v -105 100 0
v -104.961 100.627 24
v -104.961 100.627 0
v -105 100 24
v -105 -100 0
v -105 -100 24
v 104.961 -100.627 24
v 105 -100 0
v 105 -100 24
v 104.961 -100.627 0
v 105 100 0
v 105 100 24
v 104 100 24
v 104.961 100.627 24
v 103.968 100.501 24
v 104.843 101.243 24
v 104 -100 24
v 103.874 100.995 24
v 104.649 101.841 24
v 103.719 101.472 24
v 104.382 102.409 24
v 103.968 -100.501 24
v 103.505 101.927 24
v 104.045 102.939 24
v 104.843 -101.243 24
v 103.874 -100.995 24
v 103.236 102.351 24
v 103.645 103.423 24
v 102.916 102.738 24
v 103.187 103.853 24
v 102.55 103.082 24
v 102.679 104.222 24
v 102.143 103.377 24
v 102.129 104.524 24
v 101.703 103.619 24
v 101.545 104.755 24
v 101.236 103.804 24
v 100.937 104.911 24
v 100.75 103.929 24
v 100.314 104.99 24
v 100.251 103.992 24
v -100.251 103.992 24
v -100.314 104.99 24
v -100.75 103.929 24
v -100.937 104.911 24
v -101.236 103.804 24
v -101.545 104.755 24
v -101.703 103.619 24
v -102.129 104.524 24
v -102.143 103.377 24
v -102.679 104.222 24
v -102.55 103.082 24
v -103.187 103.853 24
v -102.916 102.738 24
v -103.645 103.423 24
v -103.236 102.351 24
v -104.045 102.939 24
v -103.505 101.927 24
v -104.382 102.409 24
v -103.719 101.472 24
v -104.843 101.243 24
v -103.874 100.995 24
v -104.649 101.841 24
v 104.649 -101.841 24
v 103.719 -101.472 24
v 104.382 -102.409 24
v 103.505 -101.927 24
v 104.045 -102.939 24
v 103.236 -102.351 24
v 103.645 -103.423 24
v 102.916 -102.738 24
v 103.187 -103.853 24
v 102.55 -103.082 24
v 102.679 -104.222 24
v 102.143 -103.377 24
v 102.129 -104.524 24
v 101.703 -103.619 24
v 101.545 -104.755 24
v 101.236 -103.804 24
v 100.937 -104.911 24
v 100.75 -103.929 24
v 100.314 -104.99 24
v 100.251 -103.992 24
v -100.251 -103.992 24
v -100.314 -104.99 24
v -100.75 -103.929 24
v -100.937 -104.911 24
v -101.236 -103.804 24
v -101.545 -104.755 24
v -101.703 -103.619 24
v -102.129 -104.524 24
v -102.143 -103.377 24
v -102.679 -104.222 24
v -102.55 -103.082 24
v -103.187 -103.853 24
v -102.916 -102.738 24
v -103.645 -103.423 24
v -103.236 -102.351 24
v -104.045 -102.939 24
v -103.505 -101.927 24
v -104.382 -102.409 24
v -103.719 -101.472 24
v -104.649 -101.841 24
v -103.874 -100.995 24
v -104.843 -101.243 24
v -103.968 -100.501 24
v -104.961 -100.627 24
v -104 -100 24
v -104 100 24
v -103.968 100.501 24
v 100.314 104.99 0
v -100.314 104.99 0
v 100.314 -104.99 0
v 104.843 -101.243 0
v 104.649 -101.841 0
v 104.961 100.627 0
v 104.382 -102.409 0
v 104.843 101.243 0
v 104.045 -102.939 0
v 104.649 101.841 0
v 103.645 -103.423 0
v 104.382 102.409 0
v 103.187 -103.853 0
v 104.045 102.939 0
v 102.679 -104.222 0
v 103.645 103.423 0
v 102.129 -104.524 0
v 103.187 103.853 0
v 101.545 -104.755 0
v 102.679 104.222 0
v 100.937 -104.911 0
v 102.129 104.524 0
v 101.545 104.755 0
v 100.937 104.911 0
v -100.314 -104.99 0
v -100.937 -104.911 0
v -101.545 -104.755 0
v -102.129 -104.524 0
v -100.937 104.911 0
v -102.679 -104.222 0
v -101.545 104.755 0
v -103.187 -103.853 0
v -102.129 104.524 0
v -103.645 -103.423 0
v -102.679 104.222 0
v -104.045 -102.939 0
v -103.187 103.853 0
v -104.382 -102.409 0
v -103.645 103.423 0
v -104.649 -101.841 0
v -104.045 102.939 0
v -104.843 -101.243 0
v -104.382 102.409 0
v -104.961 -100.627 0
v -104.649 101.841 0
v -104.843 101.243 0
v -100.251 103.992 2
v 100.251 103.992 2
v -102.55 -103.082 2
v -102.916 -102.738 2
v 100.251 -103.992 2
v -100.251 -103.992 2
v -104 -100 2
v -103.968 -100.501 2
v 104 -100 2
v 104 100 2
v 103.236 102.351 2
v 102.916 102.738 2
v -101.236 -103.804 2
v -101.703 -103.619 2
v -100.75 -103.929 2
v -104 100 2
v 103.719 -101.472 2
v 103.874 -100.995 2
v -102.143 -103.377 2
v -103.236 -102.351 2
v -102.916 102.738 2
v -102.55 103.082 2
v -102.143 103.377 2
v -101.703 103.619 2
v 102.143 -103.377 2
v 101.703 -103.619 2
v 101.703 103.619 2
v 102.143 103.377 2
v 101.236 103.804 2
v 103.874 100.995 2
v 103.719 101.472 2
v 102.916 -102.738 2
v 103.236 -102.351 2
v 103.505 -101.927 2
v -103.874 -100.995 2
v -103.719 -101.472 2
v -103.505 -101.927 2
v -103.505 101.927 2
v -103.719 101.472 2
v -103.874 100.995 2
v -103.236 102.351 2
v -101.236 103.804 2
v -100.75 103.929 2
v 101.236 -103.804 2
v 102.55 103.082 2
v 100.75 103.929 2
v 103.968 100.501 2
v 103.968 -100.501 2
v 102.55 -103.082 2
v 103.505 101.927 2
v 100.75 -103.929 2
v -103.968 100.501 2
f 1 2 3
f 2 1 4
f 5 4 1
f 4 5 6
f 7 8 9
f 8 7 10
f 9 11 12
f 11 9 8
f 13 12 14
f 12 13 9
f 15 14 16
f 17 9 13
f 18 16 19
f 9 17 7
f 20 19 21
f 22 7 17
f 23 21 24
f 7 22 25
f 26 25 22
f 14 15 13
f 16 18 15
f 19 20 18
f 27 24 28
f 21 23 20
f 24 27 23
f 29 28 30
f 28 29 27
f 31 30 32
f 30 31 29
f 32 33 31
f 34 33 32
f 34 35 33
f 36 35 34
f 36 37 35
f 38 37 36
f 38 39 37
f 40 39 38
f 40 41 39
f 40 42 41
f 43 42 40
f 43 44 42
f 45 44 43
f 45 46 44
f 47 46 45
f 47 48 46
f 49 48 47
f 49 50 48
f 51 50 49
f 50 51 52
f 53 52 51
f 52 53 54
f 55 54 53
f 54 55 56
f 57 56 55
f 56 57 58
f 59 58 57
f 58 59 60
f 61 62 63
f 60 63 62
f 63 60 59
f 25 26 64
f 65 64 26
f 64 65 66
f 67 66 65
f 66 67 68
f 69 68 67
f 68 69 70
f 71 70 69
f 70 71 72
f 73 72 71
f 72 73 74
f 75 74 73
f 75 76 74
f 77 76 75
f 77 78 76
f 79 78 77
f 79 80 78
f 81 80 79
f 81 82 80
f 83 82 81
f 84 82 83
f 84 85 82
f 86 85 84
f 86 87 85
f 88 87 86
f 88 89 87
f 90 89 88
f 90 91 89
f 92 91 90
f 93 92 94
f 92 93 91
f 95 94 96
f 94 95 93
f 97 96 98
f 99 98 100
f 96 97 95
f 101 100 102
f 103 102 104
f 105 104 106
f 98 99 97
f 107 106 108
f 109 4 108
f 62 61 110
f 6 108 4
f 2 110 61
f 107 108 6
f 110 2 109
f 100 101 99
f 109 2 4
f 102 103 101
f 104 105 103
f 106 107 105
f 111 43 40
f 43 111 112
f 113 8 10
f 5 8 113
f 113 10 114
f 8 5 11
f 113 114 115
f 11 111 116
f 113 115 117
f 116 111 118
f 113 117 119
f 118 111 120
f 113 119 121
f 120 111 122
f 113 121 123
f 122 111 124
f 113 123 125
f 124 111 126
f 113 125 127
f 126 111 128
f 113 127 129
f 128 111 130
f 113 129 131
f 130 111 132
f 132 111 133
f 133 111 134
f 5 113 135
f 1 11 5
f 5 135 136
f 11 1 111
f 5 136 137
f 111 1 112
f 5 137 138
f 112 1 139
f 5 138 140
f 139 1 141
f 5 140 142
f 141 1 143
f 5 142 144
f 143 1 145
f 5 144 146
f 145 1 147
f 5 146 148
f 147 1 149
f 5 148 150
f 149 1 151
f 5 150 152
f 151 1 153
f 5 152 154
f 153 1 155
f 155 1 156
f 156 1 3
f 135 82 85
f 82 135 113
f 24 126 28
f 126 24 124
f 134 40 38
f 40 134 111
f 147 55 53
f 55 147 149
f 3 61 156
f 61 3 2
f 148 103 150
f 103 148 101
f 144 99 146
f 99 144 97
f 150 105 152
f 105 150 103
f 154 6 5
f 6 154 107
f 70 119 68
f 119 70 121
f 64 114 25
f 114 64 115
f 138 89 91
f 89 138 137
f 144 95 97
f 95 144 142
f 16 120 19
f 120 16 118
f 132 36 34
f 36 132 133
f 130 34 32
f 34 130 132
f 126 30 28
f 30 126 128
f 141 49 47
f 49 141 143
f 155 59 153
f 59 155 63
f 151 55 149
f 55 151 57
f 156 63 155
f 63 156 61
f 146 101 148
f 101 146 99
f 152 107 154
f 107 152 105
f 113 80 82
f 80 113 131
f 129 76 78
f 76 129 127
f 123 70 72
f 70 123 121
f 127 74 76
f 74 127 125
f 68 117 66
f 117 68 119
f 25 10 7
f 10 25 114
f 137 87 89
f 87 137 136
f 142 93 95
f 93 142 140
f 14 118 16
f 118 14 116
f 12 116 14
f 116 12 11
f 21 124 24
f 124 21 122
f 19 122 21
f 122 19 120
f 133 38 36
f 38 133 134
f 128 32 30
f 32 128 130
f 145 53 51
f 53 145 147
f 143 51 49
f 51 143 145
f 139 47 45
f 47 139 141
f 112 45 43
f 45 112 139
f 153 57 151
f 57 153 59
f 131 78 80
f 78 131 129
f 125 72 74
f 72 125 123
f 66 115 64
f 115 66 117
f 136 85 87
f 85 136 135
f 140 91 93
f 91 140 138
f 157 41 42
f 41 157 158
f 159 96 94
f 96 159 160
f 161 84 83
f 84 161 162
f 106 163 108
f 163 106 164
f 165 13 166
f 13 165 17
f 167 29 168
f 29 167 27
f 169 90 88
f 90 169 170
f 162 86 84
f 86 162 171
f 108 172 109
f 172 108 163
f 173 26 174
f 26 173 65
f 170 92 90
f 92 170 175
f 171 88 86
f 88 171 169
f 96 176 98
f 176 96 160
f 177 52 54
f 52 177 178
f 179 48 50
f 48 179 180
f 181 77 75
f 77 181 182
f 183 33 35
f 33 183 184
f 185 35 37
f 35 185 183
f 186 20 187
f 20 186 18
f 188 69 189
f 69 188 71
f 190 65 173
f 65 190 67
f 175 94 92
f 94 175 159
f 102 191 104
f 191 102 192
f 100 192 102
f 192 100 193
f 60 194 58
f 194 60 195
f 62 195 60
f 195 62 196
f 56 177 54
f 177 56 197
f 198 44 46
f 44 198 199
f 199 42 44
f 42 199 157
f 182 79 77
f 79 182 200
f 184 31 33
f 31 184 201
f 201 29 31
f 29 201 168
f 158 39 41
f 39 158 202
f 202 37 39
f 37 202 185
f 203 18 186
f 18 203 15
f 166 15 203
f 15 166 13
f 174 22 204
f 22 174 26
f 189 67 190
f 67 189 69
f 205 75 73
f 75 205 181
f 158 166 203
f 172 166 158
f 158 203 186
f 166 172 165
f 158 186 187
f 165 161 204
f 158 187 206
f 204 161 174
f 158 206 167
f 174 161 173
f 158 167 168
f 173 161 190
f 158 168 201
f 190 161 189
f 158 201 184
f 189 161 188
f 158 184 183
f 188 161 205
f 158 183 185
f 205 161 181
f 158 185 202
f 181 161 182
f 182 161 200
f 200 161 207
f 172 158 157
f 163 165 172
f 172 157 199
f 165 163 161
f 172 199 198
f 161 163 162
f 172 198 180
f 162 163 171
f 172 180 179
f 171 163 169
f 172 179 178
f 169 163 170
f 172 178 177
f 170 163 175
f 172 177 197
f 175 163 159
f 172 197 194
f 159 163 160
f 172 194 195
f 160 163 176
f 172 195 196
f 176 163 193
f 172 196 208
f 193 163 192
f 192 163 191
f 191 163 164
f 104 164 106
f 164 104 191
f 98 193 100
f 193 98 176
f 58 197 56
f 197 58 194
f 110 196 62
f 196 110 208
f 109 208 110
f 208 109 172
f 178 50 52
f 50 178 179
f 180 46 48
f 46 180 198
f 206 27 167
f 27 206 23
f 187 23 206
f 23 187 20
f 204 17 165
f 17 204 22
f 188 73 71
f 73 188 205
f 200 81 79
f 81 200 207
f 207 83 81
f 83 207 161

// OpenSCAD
$fn = 50;


difference() {
	union() {
		hull() {
			translate(v = [-100.0000000000, 100.0000000000, 0]) {
				cylinder(h = 24, r = 5);
			}
			translate(v = [100.0000000000, 100.0000000000, 0]) {
				cylinder(h = 24, r = 5);
			}
			translate(v = [-100.0000000000, -100.0000000000, 0]) {
				cylinder(h = 24, r = 5);
			}
			translate(v = [100.0000000000, -100.0000000000, 0]) {
				cylinder(h = 24, r = 5);
			}
		}
	}
	union() {
		translate(v = [0, 0, 2]) {
			hull() {
				translate(v = [-100.0000000000, 100.0000000000, 0]) {
					cylinder(h = 22, r = 4);
				}
				translate(v = [100.0000000000, 100.0000000000, 0]) {
					cylinder(h = 22, r = 4);
				}
				translate(v = [-100.0000000000, -100.0000000000, 0]) {
					cylinder(h = 22, r = 4);
				}
				translate(v = [100.0000000000, -100.0000000000, 0]) {
					cylinder(h = 22, r = 4);
				}
			}
		}
	}
}
